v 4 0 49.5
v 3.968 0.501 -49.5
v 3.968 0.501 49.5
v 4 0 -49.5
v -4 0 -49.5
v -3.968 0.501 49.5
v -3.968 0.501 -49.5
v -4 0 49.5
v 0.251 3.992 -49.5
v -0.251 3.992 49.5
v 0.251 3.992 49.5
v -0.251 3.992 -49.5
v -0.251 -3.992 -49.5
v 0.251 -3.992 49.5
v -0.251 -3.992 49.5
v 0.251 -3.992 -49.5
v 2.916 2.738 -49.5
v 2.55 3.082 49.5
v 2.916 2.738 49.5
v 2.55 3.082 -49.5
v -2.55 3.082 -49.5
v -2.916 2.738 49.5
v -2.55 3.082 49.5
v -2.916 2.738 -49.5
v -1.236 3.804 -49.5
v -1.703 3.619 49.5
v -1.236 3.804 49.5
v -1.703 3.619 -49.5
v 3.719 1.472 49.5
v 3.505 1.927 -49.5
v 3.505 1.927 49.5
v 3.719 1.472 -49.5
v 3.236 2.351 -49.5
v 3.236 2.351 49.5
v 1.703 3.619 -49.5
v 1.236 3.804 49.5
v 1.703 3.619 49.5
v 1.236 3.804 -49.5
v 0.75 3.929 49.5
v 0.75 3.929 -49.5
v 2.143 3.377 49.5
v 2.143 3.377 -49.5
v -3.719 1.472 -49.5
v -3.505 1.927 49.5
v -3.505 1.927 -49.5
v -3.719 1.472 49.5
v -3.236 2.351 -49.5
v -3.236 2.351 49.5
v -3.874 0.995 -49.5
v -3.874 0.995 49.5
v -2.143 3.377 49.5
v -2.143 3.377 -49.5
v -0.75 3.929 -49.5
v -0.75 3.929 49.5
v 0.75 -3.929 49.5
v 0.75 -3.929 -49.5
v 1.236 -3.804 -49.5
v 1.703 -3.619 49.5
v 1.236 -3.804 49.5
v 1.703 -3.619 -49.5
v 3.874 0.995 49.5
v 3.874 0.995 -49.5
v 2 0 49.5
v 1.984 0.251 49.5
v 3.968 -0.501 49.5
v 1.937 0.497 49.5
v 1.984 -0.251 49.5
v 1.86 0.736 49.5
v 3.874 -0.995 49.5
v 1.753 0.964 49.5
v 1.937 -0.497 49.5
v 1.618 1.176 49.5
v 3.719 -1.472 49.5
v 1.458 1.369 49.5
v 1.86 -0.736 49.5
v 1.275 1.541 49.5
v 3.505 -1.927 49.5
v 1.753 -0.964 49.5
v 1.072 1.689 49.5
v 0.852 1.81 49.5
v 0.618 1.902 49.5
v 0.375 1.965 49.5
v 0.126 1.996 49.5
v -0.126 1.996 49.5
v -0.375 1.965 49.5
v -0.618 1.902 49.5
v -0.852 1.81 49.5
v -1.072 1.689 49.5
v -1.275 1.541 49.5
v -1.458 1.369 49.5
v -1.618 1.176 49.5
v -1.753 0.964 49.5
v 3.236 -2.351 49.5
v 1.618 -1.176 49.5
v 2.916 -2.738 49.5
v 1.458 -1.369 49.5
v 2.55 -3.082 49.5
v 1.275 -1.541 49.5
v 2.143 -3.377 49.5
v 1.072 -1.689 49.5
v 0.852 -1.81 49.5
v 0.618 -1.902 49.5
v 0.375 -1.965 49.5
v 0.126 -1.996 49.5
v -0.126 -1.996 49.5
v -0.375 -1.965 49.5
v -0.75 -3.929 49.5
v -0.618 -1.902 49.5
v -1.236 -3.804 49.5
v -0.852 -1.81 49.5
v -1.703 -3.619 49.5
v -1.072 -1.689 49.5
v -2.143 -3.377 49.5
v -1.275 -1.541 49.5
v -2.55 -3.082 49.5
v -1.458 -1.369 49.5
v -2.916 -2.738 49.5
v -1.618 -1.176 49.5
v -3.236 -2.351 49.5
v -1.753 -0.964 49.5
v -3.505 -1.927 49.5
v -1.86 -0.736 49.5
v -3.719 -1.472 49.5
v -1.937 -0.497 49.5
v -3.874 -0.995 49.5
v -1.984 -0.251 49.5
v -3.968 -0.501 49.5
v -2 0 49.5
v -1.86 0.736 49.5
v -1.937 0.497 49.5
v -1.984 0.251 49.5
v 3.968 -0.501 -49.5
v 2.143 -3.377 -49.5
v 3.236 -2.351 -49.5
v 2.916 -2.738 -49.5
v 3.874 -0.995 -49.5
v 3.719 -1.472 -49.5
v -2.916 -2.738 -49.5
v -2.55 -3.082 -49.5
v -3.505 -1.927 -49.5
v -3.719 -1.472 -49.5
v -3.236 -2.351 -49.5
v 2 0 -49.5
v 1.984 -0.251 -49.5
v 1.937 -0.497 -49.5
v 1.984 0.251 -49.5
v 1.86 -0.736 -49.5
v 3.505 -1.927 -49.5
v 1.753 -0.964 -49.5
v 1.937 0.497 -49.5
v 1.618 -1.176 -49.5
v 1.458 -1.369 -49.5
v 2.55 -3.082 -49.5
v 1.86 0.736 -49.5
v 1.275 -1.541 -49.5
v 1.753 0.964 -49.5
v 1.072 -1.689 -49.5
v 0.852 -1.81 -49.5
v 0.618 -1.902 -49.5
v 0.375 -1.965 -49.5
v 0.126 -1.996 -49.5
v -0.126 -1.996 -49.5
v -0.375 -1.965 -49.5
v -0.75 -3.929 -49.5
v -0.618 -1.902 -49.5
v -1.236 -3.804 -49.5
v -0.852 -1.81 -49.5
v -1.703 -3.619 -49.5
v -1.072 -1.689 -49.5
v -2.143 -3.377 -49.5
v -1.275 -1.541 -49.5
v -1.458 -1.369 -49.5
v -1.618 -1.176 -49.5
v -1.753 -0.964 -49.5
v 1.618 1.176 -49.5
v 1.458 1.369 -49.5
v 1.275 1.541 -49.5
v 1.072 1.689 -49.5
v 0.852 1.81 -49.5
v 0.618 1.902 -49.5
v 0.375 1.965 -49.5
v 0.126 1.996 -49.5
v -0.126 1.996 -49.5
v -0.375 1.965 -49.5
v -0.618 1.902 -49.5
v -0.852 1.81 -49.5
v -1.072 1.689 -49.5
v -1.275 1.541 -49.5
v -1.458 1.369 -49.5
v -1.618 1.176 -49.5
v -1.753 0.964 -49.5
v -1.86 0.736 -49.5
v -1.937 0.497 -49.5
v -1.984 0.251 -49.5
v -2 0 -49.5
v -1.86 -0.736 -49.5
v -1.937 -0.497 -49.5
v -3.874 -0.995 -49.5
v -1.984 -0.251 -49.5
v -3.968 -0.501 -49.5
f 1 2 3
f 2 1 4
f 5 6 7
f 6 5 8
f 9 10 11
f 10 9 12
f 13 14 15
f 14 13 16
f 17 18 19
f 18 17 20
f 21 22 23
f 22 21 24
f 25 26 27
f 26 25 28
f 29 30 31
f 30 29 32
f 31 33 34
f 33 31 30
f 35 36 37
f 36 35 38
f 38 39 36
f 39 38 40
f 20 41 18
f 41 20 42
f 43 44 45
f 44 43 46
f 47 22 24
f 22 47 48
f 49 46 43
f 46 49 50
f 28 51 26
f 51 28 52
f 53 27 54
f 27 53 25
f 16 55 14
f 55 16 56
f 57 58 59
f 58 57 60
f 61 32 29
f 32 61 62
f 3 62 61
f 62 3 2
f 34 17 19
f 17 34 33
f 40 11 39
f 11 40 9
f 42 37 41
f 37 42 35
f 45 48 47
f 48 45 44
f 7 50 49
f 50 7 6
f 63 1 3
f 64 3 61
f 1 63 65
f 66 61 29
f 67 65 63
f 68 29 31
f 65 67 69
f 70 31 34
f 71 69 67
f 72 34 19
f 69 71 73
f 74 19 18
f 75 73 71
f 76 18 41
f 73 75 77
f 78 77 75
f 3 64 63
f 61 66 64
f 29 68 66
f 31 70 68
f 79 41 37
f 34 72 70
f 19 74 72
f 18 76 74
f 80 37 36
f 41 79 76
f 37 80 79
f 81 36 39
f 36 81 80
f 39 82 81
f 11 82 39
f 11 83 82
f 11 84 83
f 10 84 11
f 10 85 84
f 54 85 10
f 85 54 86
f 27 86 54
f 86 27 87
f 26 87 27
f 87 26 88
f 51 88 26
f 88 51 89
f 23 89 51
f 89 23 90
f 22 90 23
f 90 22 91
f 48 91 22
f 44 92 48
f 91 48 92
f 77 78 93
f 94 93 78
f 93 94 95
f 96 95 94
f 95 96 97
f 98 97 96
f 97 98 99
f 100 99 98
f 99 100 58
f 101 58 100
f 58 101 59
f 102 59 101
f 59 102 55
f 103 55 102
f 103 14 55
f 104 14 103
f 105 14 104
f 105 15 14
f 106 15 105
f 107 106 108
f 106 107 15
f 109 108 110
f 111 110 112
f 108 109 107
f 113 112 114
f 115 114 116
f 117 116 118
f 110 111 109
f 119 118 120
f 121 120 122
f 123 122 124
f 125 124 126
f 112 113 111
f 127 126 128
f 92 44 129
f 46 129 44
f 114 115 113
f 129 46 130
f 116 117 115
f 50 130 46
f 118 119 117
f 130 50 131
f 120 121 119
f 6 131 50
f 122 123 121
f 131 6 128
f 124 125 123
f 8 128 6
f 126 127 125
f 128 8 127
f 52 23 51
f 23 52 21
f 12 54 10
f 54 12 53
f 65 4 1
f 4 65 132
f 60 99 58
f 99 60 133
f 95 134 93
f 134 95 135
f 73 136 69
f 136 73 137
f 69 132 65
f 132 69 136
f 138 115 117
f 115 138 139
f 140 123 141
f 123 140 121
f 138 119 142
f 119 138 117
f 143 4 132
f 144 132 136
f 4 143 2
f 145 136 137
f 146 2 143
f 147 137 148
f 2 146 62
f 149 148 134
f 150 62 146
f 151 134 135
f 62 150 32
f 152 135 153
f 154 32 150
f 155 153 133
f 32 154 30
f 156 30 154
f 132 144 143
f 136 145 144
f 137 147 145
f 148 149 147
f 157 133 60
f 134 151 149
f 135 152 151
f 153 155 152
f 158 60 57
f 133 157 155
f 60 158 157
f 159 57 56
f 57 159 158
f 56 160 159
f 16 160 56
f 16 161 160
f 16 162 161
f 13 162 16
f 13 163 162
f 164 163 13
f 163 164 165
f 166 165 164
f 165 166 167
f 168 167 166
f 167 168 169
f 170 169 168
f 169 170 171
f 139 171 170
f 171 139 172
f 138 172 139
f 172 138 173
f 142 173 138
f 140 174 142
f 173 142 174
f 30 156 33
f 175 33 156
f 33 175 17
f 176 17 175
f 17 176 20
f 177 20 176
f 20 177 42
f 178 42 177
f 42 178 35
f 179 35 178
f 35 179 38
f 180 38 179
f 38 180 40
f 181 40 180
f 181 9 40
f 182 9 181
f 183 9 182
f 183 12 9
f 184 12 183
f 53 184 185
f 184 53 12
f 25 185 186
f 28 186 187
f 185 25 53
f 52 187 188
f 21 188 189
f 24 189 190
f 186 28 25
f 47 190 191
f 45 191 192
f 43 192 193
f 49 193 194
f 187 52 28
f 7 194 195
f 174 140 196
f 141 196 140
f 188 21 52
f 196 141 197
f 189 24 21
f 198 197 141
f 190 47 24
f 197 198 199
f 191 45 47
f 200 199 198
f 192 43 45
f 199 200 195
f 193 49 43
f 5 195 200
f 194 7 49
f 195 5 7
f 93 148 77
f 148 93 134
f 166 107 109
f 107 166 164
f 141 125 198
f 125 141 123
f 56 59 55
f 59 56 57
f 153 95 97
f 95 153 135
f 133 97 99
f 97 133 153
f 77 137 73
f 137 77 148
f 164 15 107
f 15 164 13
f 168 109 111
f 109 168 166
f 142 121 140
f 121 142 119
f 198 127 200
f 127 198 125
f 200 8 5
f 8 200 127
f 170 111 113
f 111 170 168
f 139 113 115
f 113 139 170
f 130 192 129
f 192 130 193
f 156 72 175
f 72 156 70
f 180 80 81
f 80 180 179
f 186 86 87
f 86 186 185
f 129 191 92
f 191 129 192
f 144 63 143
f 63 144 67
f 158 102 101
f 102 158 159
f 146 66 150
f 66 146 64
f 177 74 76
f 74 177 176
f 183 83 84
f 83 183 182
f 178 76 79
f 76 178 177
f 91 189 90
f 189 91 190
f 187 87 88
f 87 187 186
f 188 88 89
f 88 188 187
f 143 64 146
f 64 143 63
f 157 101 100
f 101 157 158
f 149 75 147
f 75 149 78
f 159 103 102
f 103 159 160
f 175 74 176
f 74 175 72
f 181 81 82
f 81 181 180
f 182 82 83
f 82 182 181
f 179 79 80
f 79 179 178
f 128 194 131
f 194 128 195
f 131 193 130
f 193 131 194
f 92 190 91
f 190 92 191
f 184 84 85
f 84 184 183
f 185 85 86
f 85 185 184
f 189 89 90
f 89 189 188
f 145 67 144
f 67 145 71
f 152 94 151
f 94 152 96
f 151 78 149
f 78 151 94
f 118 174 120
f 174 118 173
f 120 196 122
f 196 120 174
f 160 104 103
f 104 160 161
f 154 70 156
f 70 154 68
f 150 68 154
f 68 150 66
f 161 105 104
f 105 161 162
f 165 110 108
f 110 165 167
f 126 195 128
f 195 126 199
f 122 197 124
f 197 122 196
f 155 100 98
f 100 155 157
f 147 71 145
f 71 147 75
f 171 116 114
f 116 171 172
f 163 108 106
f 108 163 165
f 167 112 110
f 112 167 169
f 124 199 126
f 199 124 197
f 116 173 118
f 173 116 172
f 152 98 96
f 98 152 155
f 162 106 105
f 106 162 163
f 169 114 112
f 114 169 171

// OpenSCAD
$fn = 50;


difference() {
	union() {
		translate(v = [0, 0, -49.5000000000]) {
			cylinder(h = 99, r = 4.0000000000);
		}
	}
	union() {
		translate(v = [0, 0, -100.0000000000]) {
			cylinder(h = 200, r = 2);
		}
	}
}
